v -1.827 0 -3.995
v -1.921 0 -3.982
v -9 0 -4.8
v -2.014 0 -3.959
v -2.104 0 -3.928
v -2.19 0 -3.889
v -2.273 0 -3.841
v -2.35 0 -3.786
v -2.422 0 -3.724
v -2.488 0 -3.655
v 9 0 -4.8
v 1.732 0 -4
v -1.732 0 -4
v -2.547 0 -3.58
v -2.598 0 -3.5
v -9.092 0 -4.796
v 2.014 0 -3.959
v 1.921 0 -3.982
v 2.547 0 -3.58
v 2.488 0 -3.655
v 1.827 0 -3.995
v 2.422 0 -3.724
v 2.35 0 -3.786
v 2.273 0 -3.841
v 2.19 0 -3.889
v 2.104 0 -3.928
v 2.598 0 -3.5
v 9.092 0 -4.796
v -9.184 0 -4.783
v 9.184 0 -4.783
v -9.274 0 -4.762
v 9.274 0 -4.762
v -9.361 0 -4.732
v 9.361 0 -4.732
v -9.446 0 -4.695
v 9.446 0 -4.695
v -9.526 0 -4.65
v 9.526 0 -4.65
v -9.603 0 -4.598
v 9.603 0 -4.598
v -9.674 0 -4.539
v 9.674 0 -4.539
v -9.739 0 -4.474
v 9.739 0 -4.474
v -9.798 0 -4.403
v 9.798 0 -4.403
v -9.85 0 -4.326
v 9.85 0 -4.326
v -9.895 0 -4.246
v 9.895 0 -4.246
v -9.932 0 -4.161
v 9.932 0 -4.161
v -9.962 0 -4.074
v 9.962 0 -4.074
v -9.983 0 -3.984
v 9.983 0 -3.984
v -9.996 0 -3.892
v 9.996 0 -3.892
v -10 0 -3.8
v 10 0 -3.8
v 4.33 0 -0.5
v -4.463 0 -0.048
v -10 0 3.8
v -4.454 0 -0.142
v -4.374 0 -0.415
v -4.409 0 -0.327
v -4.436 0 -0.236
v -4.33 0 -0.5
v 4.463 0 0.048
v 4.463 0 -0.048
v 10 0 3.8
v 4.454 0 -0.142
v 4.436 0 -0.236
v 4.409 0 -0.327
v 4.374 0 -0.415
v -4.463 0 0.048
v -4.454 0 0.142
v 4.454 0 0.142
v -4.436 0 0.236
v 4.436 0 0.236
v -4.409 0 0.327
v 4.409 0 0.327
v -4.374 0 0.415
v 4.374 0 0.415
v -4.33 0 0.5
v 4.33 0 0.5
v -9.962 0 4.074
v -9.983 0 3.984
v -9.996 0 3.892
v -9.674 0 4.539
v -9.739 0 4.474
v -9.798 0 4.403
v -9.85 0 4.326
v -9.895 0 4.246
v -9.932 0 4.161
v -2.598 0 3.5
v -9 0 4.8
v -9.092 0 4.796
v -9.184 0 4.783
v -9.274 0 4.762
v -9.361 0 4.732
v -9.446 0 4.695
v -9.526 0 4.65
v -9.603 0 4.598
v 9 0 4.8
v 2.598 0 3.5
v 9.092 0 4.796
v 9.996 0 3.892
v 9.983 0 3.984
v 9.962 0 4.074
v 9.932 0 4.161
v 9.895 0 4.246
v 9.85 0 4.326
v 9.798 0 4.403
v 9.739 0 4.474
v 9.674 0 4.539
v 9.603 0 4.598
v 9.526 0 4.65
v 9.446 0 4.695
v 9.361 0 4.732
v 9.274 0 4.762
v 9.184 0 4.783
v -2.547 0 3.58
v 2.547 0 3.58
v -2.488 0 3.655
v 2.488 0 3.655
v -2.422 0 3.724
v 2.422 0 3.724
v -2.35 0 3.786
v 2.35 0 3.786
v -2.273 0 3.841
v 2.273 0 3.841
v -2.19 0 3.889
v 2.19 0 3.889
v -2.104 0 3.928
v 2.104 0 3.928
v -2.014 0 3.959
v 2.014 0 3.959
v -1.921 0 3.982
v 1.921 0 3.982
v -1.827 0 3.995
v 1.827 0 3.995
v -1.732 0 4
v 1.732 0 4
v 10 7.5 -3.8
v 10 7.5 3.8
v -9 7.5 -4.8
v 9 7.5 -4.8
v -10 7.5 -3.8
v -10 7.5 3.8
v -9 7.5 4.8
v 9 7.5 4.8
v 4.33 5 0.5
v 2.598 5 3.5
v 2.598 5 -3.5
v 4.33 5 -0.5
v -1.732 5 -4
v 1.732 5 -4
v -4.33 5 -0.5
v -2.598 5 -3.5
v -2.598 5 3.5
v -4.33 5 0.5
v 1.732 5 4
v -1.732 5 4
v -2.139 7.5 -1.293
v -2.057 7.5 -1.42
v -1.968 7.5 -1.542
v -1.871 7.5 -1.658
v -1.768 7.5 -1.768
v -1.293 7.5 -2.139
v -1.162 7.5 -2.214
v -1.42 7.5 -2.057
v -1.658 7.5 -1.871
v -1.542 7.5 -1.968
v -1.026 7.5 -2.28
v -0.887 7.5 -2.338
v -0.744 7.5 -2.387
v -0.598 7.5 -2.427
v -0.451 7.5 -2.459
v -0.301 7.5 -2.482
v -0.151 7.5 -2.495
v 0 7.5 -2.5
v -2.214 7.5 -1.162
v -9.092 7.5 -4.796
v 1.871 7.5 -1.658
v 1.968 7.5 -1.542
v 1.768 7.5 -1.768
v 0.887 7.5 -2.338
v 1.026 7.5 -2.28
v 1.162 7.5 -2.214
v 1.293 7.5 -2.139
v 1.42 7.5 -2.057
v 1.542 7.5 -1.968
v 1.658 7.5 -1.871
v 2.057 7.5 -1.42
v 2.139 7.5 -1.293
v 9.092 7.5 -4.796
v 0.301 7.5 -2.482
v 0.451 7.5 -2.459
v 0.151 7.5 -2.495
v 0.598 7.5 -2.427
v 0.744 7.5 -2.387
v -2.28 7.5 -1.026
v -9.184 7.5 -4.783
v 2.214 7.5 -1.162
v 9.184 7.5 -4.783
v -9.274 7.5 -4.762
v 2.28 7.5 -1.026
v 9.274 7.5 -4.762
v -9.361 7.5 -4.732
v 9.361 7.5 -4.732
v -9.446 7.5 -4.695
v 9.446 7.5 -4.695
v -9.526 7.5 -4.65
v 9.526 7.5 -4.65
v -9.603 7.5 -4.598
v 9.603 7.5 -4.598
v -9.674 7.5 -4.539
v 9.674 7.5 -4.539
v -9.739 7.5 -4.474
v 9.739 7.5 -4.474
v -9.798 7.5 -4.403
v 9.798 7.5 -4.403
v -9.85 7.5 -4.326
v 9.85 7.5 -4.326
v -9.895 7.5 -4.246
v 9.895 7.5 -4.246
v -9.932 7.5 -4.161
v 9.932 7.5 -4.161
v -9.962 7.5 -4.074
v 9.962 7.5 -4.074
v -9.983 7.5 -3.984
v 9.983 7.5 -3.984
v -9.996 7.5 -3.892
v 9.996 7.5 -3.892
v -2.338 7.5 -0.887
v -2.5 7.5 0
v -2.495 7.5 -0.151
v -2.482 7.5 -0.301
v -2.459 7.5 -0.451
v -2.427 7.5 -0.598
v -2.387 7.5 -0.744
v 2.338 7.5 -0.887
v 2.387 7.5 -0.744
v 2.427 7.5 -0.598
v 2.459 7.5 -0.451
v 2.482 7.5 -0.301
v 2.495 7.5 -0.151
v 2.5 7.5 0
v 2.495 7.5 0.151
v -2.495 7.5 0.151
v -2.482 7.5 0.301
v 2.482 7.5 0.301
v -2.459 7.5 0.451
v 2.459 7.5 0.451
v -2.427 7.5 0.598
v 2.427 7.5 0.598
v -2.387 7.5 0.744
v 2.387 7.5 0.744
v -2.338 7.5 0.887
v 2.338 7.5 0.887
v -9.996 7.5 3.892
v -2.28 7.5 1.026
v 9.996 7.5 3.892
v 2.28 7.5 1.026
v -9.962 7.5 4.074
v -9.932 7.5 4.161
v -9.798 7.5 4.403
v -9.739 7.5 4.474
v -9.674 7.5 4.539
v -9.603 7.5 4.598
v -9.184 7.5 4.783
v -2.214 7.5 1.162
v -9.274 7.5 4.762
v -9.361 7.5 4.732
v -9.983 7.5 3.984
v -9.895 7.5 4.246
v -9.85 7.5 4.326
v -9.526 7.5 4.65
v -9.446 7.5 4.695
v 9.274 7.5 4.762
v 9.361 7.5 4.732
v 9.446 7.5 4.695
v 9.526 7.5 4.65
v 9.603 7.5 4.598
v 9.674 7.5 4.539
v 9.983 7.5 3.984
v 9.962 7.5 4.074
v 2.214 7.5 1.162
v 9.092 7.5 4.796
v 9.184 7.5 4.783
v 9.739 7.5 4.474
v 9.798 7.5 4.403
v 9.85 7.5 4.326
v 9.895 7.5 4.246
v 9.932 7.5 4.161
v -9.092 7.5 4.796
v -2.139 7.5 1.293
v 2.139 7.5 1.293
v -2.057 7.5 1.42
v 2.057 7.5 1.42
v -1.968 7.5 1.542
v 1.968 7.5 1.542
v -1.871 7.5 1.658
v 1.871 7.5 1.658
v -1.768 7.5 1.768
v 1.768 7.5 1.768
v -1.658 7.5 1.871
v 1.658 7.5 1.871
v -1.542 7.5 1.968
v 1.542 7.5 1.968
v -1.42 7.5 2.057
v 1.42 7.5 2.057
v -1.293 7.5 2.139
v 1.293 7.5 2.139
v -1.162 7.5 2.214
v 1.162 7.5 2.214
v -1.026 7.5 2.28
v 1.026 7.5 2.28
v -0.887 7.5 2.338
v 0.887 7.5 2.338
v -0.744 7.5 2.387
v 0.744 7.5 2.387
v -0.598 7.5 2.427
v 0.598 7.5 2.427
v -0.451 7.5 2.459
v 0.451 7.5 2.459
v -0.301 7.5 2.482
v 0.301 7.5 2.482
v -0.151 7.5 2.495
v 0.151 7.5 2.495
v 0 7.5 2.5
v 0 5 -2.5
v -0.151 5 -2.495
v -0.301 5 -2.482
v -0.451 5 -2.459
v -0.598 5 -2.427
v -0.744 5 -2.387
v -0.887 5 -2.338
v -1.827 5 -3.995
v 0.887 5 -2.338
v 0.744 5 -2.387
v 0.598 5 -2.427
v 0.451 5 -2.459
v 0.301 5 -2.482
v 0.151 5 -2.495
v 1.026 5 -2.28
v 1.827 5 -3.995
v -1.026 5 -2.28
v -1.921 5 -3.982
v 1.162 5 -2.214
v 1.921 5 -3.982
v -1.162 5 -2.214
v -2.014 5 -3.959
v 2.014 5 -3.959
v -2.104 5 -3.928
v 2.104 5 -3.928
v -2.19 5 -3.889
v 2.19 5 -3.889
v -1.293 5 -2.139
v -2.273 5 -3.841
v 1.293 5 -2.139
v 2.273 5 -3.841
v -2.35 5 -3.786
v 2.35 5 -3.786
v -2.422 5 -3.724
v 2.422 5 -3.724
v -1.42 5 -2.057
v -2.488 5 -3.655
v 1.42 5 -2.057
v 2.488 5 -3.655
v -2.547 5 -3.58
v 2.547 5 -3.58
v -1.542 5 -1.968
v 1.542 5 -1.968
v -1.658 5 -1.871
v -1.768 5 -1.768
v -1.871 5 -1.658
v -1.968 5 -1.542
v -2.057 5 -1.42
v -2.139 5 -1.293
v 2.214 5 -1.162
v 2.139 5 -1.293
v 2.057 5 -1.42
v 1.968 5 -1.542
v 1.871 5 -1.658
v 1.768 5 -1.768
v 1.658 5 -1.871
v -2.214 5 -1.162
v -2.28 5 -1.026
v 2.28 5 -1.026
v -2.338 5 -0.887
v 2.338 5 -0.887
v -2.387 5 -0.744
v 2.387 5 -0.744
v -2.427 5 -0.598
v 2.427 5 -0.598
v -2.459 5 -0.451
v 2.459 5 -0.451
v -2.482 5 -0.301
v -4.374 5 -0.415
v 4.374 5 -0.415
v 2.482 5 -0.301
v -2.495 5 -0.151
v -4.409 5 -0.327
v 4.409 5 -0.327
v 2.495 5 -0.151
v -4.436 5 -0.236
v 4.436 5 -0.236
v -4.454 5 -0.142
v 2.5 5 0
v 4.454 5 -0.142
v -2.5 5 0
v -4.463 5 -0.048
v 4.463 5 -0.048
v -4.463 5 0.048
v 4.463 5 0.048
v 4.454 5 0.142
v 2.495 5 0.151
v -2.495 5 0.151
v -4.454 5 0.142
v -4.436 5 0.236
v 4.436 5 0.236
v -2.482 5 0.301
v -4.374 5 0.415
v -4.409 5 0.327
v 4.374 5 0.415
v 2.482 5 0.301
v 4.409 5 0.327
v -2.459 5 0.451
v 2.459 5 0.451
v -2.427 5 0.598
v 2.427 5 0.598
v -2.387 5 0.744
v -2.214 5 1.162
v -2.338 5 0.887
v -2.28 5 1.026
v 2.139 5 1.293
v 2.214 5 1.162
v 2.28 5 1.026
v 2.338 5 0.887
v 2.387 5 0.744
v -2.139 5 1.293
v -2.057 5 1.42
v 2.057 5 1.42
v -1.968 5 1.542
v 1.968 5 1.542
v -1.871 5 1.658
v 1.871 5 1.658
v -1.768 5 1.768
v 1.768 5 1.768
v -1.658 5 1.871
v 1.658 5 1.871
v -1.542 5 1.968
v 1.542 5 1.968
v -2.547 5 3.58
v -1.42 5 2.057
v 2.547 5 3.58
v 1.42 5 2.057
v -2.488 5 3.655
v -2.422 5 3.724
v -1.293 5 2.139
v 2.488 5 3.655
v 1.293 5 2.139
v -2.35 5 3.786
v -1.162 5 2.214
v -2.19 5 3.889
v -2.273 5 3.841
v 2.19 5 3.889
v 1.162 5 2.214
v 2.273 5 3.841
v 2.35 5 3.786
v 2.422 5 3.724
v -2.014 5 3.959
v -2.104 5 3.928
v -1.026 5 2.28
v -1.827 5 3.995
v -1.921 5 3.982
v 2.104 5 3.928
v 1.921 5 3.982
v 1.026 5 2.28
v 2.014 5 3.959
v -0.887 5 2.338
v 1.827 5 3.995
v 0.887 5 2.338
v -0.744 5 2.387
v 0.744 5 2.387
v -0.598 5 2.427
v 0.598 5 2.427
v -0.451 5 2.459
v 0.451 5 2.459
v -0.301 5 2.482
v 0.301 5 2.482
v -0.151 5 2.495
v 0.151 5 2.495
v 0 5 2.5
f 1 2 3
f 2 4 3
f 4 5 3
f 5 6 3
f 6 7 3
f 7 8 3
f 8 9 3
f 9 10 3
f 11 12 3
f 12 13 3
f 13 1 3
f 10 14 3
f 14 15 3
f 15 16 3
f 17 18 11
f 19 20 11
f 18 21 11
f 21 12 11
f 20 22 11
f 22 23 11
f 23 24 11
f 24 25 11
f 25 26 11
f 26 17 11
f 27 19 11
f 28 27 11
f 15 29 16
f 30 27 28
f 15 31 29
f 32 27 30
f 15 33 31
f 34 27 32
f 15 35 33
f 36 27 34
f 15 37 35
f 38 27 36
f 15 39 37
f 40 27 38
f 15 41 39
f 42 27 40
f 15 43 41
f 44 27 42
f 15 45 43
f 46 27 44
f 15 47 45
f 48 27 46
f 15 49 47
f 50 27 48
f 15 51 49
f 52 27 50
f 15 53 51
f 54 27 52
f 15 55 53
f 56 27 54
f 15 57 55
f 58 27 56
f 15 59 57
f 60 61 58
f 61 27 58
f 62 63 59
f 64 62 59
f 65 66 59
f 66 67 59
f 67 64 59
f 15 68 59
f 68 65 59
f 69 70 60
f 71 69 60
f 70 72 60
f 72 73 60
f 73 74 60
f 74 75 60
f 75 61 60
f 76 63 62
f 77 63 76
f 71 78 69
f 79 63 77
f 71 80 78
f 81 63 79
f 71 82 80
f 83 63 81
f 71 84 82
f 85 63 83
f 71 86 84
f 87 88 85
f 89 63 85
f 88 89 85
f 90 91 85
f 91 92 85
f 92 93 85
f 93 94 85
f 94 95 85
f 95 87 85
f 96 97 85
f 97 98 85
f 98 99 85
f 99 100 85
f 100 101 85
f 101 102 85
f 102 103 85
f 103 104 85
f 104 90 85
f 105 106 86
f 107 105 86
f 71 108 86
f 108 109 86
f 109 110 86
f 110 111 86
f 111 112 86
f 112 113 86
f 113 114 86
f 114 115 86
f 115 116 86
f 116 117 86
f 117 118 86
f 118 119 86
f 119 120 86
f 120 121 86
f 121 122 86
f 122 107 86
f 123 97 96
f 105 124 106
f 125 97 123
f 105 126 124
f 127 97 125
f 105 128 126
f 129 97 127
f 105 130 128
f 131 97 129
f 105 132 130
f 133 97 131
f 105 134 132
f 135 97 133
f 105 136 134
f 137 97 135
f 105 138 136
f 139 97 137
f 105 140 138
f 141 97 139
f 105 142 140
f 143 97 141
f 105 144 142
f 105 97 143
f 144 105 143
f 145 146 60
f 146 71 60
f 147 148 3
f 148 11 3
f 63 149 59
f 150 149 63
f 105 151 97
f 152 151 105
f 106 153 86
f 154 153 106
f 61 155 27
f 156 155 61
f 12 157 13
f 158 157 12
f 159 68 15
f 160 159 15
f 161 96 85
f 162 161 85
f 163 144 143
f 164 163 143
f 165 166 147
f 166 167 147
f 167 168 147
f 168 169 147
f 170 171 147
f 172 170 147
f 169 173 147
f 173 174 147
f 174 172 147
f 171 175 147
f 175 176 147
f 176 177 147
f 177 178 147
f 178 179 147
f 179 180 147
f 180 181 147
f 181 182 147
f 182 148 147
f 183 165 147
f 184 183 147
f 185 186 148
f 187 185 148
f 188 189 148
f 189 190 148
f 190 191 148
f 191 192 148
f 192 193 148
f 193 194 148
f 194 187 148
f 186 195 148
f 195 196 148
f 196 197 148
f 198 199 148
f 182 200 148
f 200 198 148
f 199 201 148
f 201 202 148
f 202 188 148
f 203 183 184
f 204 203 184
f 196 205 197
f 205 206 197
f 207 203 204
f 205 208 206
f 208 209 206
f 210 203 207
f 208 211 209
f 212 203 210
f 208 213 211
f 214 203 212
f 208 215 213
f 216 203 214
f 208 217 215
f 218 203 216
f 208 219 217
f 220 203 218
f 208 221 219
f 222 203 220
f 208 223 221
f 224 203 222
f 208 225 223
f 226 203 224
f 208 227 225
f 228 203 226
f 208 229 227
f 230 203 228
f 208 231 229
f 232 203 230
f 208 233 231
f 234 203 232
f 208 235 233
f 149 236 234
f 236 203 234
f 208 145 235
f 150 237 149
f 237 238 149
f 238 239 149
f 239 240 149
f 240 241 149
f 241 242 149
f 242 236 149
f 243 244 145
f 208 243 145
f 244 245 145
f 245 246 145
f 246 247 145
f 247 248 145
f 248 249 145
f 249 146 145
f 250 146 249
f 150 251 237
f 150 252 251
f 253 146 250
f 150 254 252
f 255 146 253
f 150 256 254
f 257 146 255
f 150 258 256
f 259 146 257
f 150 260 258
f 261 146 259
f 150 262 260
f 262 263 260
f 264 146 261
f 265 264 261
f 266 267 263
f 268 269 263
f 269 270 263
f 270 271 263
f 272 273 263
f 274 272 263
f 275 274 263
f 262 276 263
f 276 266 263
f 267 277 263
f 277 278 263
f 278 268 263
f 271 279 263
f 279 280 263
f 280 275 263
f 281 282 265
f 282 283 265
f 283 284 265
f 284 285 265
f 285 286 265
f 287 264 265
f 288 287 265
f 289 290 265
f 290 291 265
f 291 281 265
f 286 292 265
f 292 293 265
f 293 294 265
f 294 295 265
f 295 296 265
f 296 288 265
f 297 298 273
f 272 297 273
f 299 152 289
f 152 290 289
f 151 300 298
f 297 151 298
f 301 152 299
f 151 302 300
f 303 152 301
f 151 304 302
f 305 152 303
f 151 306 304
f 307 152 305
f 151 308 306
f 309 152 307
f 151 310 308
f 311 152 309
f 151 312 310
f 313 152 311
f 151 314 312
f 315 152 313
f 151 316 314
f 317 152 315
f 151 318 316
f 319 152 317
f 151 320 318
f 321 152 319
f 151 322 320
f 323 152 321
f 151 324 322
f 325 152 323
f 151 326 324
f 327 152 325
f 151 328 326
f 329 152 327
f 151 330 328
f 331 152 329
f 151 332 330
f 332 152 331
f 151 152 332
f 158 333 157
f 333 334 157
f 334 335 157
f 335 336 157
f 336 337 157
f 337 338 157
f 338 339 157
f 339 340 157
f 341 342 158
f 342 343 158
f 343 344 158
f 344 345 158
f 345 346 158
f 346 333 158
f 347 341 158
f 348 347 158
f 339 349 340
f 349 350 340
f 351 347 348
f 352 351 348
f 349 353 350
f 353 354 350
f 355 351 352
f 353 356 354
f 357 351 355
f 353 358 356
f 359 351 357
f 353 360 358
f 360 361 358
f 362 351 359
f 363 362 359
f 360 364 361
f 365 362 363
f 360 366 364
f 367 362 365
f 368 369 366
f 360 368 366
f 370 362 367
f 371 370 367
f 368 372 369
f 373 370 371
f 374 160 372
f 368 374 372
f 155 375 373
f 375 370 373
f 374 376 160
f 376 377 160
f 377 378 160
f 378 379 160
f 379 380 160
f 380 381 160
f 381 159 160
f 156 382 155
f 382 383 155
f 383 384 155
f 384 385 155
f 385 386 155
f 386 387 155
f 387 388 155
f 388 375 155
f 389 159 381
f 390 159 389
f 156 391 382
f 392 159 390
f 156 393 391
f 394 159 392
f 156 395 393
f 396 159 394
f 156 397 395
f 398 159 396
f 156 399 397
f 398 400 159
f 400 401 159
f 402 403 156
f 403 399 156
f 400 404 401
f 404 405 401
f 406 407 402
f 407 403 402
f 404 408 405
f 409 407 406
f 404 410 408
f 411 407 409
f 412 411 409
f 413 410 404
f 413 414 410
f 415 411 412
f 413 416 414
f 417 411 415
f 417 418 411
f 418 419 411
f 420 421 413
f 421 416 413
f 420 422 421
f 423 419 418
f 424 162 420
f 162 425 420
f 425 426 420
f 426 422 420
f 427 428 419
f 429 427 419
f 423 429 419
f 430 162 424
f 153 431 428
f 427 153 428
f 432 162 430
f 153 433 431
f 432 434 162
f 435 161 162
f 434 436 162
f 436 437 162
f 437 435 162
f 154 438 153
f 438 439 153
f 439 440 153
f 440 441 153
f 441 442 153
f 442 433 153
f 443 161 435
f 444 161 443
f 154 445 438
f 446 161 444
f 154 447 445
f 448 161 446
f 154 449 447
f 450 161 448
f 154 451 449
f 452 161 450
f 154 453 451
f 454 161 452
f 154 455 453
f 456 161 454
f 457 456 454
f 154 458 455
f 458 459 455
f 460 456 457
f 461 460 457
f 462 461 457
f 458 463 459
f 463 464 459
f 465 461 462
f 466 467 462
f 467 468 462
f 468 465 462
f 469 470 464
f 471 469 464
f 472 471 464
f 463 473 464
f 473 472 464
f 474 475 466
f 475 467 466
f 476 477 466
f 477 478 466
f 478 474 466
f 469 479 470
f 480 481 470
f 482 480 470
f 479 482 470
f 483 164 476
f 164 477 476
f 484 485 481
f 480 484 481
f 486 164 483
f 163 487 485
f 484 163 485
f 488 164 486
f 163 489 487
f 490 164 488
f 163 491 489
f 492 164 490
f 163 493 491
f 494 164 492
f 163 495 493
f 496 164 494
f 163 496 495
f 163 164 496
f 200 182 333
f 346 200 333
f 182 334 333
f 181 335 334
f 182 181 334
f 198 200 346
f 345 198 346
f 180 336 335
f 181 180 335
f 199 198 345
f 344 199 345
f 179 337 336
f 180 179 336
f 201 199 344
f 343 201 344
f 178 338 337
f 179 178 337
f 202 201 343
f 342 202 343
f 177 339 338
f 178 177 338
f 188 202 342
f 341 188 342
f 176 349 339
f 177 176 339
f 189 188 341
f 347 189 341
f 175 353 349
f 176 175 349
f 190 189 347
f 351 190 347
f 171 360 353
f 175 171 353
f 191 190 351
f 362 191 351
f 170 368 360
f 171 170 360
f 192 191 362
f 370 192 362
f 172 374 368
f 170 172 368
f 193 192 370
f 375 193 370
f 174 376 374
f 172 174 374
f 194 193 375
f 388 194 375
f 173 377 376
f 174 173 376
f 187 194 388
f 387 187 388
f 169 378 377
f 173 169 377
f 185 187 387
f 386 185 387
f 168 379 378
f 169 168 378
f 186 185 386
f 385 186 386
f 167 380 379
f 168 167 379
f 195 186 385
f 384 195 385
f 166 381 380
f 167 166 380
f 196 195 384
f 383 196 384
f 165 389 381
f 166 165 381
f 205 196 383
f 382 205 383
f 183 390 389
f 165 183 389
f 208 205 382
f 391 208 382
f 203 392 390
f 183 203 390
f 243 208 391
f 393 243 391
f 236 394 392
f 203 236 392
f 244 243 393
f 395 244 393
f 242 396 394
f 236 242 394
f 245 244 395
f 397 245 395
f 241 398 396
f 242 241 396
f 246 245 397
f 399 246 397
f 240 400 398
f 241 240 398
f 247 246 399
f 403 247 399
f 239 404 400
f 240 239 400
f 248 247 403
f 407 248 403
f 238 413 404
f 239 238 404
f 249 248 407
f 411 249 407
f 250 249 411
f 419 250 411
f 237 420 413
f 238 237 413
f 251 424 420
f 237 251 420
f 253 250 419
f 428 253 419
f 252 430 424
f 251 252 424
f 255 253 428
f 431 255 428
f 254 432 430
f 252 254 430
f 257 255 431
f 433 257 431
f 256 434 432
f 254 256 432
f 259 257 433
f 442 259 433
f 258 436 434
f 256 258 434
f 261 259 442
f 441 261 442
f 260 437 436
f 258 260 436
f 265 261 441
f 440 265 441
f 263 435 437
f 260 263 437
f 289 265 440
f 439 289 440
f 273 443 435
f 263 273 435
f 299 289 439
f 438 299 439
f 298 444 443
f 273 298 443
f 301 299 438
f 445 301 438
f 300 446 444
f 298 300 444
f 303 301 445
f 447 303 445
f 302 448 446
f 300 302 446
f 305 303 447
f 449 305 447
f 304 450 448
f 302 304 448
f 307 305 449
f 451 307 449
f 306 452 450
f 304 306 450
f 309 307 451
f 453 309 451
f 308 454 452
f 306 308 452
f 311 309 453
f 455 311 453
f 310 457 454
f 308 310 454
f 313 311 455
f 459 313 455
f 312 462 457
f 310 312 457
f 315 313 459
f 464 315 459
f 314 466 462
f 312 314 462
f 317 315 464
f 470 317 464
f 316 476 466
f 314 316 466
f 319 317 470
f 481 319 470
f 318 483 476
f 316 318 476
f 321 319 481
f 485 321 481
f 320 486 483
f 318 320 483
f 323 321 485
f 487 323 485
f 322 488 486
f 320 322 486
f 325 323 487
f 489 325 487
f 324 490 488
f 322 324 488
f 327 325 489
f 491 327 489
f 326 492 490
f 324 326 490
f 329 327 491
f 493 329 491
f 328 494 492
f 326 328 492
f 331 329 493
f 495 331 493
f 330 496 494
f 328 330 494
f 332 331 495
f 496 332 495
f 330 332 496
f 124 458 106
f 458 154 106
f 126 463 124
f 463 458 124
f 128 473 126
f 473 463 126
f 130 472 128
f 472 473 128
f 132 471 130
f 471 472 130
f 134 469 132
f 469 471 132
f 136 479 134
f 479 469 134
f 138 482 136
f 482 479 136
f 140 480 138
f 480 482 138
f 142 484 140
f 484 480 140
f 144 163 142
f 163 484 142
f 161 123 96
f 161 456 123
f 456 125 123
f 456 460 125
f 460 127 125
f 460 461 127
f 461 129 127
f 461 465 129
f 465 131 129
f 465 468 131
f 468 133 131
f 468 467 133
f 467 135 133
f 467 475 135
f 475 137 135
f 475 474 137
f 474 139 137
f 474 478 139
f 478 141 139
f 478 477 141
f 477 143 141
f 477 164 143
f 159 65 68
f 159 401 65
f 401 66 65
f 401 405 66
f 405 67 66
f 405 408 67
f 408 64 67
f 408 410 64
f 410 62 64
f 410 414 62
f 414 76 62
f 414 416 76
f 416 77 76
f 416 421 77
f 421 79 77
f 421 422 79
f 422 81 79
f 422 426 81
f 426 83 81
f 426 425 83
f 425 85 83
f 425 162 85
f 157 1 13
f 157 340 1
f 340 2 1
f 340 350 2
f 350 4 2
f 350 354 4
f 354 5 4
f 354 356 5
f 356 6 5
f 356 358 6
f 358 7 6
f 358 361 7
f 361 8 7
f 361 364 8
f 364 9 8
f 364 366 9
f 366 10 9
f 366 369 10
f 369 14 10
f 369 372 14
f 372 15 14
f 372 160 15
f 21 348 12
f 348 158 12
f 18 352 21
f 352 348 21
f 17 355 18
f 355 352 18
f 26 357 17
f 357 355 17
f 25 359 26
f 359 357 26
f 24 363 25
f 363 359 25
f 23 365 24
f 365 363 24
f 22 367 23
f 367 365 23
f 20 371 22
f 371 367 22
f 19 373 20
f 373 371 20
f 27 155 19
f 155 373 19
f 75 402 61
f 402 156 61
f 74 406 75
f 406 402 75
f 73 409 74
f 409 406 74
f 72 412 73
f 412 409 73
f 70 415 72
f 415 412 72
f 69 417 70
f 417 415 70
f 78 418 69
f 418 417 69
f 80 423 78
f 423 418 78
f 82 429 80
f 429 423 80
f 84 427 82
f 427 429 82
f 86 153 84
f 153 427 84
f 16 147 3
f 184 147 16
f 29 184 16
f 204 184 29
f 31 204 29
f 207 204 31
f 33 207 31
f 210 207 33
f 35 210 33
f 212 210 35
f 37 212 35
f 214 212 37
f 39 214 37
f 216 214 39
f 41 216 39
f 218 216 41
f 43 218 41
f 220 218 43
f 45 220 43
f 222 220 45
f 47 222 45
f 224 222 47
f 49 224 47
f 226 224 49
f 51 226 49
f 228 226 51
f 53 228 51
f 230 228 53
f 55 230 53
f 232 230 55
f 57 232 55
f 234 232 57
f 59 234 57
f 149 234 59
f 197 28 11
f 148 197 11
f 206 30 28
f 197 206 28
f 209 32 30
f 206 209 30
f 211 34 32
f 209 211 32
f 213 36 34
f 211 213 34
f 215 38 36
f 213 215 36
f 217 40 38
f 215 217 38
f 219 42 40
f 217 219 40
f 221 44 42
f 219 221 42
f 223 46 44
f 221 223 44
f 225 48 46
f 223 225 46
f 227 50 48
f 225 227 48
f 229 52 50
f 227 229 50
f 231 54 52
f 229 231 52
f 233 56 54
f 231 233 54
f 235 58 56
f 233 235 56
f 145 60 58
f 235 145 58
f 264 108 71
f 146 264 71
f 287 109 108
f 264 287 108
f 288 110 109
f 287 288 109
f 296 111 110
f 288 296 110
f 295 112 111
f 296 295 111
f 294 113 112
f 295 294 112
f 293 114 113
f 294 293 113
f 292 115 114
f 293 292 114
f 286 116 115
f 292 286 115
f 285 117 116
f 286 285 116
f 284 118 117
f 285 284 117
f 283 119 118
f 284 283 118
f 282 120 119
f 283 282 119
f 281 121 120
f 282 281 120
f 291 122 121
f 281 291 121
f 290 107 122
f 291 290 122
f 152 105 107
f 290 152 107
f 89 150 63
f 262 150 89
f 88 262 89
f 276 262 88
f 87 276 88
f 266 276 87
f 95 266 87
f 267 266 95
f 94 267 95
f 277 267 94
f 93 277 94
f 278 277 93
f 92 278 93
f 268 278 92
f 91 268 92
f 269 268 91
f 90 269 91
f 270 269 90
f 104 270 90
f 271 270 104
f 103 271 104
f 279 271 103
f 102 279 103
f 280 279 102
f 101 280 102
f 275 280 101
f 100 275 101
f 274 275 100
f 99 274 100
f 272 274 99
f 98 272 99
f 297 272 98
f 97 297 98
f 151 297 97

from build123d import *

# Parameters (mm, degrees)
SKETCH1_W           = 20
SKETCH1_H           = 9.6
BOSS_EXTRUDE1_DEPTH = 5
SKETCH2_W           = 20
SKETCH2_H           = 9.6
SKETCH2_R           = 2.5
BOSS_EXTRUDE2_DEPTH = 2.5
FILLET1_R           = 1


with BuildPart() as part:
    # Sketch1 → Boss-Extrude1 (new body)
    with BuildSketch(Plane(origin=(0, 0, 0), x_dir=(1, 0, 0), z_dir=(0, 1, 0))):
        Rectangle(SKETCH1_W, SKETCH1_H)
        Polygon((4.618802154, 0), (2.309401077, 4), (-2.309401077, 4), (-4.618802154, 0), (-2.309401077, -4), (2.309401077, -4), align=None, mode=Mode.SUBTRACT)
    extrude(amount=BOSS_EXTRUDE1_DEPTH)

    # Sketch2 → Boss-Extrude2 (add)
    with BuildSketch(Plane(origin=(0, 5, 0), x_dir=(1, 0, 0), z_dir=(0, 1, 0))):
        Rectangle(SKETCH2_W, SKETCH2_H)
        with Locations(Location((0, 0, 0), (0, 0, 270))):
            Circle(SKETCH2_R, mode=Mode.SUBTRACT)
    extrude(amount=BOSS_EXTRUDE2_DEPTH)

    # Fillet1
    fillet1_edges = [part.edges().sort_by_distance(p)[0] for p in [
        (2.309401077, 2.5, 4),
        (4.618802154, 2.5, 0),
        (2.309401077, 2.5, -4),
        (-2.309401077, 2.5, -4),
        (-4.618802154, 2.5, 0),
        (-2.309401077, 2.5, 4),
        (10, 3.75, 4.8),
        (-10, 3.75, 4.8),
        (-10, 3.75, -4.8),
        (10, 3.75, -4.8),
    ]]
    fillet(fillet1_edges, radius=FILLET1_R)


solid = part.part
